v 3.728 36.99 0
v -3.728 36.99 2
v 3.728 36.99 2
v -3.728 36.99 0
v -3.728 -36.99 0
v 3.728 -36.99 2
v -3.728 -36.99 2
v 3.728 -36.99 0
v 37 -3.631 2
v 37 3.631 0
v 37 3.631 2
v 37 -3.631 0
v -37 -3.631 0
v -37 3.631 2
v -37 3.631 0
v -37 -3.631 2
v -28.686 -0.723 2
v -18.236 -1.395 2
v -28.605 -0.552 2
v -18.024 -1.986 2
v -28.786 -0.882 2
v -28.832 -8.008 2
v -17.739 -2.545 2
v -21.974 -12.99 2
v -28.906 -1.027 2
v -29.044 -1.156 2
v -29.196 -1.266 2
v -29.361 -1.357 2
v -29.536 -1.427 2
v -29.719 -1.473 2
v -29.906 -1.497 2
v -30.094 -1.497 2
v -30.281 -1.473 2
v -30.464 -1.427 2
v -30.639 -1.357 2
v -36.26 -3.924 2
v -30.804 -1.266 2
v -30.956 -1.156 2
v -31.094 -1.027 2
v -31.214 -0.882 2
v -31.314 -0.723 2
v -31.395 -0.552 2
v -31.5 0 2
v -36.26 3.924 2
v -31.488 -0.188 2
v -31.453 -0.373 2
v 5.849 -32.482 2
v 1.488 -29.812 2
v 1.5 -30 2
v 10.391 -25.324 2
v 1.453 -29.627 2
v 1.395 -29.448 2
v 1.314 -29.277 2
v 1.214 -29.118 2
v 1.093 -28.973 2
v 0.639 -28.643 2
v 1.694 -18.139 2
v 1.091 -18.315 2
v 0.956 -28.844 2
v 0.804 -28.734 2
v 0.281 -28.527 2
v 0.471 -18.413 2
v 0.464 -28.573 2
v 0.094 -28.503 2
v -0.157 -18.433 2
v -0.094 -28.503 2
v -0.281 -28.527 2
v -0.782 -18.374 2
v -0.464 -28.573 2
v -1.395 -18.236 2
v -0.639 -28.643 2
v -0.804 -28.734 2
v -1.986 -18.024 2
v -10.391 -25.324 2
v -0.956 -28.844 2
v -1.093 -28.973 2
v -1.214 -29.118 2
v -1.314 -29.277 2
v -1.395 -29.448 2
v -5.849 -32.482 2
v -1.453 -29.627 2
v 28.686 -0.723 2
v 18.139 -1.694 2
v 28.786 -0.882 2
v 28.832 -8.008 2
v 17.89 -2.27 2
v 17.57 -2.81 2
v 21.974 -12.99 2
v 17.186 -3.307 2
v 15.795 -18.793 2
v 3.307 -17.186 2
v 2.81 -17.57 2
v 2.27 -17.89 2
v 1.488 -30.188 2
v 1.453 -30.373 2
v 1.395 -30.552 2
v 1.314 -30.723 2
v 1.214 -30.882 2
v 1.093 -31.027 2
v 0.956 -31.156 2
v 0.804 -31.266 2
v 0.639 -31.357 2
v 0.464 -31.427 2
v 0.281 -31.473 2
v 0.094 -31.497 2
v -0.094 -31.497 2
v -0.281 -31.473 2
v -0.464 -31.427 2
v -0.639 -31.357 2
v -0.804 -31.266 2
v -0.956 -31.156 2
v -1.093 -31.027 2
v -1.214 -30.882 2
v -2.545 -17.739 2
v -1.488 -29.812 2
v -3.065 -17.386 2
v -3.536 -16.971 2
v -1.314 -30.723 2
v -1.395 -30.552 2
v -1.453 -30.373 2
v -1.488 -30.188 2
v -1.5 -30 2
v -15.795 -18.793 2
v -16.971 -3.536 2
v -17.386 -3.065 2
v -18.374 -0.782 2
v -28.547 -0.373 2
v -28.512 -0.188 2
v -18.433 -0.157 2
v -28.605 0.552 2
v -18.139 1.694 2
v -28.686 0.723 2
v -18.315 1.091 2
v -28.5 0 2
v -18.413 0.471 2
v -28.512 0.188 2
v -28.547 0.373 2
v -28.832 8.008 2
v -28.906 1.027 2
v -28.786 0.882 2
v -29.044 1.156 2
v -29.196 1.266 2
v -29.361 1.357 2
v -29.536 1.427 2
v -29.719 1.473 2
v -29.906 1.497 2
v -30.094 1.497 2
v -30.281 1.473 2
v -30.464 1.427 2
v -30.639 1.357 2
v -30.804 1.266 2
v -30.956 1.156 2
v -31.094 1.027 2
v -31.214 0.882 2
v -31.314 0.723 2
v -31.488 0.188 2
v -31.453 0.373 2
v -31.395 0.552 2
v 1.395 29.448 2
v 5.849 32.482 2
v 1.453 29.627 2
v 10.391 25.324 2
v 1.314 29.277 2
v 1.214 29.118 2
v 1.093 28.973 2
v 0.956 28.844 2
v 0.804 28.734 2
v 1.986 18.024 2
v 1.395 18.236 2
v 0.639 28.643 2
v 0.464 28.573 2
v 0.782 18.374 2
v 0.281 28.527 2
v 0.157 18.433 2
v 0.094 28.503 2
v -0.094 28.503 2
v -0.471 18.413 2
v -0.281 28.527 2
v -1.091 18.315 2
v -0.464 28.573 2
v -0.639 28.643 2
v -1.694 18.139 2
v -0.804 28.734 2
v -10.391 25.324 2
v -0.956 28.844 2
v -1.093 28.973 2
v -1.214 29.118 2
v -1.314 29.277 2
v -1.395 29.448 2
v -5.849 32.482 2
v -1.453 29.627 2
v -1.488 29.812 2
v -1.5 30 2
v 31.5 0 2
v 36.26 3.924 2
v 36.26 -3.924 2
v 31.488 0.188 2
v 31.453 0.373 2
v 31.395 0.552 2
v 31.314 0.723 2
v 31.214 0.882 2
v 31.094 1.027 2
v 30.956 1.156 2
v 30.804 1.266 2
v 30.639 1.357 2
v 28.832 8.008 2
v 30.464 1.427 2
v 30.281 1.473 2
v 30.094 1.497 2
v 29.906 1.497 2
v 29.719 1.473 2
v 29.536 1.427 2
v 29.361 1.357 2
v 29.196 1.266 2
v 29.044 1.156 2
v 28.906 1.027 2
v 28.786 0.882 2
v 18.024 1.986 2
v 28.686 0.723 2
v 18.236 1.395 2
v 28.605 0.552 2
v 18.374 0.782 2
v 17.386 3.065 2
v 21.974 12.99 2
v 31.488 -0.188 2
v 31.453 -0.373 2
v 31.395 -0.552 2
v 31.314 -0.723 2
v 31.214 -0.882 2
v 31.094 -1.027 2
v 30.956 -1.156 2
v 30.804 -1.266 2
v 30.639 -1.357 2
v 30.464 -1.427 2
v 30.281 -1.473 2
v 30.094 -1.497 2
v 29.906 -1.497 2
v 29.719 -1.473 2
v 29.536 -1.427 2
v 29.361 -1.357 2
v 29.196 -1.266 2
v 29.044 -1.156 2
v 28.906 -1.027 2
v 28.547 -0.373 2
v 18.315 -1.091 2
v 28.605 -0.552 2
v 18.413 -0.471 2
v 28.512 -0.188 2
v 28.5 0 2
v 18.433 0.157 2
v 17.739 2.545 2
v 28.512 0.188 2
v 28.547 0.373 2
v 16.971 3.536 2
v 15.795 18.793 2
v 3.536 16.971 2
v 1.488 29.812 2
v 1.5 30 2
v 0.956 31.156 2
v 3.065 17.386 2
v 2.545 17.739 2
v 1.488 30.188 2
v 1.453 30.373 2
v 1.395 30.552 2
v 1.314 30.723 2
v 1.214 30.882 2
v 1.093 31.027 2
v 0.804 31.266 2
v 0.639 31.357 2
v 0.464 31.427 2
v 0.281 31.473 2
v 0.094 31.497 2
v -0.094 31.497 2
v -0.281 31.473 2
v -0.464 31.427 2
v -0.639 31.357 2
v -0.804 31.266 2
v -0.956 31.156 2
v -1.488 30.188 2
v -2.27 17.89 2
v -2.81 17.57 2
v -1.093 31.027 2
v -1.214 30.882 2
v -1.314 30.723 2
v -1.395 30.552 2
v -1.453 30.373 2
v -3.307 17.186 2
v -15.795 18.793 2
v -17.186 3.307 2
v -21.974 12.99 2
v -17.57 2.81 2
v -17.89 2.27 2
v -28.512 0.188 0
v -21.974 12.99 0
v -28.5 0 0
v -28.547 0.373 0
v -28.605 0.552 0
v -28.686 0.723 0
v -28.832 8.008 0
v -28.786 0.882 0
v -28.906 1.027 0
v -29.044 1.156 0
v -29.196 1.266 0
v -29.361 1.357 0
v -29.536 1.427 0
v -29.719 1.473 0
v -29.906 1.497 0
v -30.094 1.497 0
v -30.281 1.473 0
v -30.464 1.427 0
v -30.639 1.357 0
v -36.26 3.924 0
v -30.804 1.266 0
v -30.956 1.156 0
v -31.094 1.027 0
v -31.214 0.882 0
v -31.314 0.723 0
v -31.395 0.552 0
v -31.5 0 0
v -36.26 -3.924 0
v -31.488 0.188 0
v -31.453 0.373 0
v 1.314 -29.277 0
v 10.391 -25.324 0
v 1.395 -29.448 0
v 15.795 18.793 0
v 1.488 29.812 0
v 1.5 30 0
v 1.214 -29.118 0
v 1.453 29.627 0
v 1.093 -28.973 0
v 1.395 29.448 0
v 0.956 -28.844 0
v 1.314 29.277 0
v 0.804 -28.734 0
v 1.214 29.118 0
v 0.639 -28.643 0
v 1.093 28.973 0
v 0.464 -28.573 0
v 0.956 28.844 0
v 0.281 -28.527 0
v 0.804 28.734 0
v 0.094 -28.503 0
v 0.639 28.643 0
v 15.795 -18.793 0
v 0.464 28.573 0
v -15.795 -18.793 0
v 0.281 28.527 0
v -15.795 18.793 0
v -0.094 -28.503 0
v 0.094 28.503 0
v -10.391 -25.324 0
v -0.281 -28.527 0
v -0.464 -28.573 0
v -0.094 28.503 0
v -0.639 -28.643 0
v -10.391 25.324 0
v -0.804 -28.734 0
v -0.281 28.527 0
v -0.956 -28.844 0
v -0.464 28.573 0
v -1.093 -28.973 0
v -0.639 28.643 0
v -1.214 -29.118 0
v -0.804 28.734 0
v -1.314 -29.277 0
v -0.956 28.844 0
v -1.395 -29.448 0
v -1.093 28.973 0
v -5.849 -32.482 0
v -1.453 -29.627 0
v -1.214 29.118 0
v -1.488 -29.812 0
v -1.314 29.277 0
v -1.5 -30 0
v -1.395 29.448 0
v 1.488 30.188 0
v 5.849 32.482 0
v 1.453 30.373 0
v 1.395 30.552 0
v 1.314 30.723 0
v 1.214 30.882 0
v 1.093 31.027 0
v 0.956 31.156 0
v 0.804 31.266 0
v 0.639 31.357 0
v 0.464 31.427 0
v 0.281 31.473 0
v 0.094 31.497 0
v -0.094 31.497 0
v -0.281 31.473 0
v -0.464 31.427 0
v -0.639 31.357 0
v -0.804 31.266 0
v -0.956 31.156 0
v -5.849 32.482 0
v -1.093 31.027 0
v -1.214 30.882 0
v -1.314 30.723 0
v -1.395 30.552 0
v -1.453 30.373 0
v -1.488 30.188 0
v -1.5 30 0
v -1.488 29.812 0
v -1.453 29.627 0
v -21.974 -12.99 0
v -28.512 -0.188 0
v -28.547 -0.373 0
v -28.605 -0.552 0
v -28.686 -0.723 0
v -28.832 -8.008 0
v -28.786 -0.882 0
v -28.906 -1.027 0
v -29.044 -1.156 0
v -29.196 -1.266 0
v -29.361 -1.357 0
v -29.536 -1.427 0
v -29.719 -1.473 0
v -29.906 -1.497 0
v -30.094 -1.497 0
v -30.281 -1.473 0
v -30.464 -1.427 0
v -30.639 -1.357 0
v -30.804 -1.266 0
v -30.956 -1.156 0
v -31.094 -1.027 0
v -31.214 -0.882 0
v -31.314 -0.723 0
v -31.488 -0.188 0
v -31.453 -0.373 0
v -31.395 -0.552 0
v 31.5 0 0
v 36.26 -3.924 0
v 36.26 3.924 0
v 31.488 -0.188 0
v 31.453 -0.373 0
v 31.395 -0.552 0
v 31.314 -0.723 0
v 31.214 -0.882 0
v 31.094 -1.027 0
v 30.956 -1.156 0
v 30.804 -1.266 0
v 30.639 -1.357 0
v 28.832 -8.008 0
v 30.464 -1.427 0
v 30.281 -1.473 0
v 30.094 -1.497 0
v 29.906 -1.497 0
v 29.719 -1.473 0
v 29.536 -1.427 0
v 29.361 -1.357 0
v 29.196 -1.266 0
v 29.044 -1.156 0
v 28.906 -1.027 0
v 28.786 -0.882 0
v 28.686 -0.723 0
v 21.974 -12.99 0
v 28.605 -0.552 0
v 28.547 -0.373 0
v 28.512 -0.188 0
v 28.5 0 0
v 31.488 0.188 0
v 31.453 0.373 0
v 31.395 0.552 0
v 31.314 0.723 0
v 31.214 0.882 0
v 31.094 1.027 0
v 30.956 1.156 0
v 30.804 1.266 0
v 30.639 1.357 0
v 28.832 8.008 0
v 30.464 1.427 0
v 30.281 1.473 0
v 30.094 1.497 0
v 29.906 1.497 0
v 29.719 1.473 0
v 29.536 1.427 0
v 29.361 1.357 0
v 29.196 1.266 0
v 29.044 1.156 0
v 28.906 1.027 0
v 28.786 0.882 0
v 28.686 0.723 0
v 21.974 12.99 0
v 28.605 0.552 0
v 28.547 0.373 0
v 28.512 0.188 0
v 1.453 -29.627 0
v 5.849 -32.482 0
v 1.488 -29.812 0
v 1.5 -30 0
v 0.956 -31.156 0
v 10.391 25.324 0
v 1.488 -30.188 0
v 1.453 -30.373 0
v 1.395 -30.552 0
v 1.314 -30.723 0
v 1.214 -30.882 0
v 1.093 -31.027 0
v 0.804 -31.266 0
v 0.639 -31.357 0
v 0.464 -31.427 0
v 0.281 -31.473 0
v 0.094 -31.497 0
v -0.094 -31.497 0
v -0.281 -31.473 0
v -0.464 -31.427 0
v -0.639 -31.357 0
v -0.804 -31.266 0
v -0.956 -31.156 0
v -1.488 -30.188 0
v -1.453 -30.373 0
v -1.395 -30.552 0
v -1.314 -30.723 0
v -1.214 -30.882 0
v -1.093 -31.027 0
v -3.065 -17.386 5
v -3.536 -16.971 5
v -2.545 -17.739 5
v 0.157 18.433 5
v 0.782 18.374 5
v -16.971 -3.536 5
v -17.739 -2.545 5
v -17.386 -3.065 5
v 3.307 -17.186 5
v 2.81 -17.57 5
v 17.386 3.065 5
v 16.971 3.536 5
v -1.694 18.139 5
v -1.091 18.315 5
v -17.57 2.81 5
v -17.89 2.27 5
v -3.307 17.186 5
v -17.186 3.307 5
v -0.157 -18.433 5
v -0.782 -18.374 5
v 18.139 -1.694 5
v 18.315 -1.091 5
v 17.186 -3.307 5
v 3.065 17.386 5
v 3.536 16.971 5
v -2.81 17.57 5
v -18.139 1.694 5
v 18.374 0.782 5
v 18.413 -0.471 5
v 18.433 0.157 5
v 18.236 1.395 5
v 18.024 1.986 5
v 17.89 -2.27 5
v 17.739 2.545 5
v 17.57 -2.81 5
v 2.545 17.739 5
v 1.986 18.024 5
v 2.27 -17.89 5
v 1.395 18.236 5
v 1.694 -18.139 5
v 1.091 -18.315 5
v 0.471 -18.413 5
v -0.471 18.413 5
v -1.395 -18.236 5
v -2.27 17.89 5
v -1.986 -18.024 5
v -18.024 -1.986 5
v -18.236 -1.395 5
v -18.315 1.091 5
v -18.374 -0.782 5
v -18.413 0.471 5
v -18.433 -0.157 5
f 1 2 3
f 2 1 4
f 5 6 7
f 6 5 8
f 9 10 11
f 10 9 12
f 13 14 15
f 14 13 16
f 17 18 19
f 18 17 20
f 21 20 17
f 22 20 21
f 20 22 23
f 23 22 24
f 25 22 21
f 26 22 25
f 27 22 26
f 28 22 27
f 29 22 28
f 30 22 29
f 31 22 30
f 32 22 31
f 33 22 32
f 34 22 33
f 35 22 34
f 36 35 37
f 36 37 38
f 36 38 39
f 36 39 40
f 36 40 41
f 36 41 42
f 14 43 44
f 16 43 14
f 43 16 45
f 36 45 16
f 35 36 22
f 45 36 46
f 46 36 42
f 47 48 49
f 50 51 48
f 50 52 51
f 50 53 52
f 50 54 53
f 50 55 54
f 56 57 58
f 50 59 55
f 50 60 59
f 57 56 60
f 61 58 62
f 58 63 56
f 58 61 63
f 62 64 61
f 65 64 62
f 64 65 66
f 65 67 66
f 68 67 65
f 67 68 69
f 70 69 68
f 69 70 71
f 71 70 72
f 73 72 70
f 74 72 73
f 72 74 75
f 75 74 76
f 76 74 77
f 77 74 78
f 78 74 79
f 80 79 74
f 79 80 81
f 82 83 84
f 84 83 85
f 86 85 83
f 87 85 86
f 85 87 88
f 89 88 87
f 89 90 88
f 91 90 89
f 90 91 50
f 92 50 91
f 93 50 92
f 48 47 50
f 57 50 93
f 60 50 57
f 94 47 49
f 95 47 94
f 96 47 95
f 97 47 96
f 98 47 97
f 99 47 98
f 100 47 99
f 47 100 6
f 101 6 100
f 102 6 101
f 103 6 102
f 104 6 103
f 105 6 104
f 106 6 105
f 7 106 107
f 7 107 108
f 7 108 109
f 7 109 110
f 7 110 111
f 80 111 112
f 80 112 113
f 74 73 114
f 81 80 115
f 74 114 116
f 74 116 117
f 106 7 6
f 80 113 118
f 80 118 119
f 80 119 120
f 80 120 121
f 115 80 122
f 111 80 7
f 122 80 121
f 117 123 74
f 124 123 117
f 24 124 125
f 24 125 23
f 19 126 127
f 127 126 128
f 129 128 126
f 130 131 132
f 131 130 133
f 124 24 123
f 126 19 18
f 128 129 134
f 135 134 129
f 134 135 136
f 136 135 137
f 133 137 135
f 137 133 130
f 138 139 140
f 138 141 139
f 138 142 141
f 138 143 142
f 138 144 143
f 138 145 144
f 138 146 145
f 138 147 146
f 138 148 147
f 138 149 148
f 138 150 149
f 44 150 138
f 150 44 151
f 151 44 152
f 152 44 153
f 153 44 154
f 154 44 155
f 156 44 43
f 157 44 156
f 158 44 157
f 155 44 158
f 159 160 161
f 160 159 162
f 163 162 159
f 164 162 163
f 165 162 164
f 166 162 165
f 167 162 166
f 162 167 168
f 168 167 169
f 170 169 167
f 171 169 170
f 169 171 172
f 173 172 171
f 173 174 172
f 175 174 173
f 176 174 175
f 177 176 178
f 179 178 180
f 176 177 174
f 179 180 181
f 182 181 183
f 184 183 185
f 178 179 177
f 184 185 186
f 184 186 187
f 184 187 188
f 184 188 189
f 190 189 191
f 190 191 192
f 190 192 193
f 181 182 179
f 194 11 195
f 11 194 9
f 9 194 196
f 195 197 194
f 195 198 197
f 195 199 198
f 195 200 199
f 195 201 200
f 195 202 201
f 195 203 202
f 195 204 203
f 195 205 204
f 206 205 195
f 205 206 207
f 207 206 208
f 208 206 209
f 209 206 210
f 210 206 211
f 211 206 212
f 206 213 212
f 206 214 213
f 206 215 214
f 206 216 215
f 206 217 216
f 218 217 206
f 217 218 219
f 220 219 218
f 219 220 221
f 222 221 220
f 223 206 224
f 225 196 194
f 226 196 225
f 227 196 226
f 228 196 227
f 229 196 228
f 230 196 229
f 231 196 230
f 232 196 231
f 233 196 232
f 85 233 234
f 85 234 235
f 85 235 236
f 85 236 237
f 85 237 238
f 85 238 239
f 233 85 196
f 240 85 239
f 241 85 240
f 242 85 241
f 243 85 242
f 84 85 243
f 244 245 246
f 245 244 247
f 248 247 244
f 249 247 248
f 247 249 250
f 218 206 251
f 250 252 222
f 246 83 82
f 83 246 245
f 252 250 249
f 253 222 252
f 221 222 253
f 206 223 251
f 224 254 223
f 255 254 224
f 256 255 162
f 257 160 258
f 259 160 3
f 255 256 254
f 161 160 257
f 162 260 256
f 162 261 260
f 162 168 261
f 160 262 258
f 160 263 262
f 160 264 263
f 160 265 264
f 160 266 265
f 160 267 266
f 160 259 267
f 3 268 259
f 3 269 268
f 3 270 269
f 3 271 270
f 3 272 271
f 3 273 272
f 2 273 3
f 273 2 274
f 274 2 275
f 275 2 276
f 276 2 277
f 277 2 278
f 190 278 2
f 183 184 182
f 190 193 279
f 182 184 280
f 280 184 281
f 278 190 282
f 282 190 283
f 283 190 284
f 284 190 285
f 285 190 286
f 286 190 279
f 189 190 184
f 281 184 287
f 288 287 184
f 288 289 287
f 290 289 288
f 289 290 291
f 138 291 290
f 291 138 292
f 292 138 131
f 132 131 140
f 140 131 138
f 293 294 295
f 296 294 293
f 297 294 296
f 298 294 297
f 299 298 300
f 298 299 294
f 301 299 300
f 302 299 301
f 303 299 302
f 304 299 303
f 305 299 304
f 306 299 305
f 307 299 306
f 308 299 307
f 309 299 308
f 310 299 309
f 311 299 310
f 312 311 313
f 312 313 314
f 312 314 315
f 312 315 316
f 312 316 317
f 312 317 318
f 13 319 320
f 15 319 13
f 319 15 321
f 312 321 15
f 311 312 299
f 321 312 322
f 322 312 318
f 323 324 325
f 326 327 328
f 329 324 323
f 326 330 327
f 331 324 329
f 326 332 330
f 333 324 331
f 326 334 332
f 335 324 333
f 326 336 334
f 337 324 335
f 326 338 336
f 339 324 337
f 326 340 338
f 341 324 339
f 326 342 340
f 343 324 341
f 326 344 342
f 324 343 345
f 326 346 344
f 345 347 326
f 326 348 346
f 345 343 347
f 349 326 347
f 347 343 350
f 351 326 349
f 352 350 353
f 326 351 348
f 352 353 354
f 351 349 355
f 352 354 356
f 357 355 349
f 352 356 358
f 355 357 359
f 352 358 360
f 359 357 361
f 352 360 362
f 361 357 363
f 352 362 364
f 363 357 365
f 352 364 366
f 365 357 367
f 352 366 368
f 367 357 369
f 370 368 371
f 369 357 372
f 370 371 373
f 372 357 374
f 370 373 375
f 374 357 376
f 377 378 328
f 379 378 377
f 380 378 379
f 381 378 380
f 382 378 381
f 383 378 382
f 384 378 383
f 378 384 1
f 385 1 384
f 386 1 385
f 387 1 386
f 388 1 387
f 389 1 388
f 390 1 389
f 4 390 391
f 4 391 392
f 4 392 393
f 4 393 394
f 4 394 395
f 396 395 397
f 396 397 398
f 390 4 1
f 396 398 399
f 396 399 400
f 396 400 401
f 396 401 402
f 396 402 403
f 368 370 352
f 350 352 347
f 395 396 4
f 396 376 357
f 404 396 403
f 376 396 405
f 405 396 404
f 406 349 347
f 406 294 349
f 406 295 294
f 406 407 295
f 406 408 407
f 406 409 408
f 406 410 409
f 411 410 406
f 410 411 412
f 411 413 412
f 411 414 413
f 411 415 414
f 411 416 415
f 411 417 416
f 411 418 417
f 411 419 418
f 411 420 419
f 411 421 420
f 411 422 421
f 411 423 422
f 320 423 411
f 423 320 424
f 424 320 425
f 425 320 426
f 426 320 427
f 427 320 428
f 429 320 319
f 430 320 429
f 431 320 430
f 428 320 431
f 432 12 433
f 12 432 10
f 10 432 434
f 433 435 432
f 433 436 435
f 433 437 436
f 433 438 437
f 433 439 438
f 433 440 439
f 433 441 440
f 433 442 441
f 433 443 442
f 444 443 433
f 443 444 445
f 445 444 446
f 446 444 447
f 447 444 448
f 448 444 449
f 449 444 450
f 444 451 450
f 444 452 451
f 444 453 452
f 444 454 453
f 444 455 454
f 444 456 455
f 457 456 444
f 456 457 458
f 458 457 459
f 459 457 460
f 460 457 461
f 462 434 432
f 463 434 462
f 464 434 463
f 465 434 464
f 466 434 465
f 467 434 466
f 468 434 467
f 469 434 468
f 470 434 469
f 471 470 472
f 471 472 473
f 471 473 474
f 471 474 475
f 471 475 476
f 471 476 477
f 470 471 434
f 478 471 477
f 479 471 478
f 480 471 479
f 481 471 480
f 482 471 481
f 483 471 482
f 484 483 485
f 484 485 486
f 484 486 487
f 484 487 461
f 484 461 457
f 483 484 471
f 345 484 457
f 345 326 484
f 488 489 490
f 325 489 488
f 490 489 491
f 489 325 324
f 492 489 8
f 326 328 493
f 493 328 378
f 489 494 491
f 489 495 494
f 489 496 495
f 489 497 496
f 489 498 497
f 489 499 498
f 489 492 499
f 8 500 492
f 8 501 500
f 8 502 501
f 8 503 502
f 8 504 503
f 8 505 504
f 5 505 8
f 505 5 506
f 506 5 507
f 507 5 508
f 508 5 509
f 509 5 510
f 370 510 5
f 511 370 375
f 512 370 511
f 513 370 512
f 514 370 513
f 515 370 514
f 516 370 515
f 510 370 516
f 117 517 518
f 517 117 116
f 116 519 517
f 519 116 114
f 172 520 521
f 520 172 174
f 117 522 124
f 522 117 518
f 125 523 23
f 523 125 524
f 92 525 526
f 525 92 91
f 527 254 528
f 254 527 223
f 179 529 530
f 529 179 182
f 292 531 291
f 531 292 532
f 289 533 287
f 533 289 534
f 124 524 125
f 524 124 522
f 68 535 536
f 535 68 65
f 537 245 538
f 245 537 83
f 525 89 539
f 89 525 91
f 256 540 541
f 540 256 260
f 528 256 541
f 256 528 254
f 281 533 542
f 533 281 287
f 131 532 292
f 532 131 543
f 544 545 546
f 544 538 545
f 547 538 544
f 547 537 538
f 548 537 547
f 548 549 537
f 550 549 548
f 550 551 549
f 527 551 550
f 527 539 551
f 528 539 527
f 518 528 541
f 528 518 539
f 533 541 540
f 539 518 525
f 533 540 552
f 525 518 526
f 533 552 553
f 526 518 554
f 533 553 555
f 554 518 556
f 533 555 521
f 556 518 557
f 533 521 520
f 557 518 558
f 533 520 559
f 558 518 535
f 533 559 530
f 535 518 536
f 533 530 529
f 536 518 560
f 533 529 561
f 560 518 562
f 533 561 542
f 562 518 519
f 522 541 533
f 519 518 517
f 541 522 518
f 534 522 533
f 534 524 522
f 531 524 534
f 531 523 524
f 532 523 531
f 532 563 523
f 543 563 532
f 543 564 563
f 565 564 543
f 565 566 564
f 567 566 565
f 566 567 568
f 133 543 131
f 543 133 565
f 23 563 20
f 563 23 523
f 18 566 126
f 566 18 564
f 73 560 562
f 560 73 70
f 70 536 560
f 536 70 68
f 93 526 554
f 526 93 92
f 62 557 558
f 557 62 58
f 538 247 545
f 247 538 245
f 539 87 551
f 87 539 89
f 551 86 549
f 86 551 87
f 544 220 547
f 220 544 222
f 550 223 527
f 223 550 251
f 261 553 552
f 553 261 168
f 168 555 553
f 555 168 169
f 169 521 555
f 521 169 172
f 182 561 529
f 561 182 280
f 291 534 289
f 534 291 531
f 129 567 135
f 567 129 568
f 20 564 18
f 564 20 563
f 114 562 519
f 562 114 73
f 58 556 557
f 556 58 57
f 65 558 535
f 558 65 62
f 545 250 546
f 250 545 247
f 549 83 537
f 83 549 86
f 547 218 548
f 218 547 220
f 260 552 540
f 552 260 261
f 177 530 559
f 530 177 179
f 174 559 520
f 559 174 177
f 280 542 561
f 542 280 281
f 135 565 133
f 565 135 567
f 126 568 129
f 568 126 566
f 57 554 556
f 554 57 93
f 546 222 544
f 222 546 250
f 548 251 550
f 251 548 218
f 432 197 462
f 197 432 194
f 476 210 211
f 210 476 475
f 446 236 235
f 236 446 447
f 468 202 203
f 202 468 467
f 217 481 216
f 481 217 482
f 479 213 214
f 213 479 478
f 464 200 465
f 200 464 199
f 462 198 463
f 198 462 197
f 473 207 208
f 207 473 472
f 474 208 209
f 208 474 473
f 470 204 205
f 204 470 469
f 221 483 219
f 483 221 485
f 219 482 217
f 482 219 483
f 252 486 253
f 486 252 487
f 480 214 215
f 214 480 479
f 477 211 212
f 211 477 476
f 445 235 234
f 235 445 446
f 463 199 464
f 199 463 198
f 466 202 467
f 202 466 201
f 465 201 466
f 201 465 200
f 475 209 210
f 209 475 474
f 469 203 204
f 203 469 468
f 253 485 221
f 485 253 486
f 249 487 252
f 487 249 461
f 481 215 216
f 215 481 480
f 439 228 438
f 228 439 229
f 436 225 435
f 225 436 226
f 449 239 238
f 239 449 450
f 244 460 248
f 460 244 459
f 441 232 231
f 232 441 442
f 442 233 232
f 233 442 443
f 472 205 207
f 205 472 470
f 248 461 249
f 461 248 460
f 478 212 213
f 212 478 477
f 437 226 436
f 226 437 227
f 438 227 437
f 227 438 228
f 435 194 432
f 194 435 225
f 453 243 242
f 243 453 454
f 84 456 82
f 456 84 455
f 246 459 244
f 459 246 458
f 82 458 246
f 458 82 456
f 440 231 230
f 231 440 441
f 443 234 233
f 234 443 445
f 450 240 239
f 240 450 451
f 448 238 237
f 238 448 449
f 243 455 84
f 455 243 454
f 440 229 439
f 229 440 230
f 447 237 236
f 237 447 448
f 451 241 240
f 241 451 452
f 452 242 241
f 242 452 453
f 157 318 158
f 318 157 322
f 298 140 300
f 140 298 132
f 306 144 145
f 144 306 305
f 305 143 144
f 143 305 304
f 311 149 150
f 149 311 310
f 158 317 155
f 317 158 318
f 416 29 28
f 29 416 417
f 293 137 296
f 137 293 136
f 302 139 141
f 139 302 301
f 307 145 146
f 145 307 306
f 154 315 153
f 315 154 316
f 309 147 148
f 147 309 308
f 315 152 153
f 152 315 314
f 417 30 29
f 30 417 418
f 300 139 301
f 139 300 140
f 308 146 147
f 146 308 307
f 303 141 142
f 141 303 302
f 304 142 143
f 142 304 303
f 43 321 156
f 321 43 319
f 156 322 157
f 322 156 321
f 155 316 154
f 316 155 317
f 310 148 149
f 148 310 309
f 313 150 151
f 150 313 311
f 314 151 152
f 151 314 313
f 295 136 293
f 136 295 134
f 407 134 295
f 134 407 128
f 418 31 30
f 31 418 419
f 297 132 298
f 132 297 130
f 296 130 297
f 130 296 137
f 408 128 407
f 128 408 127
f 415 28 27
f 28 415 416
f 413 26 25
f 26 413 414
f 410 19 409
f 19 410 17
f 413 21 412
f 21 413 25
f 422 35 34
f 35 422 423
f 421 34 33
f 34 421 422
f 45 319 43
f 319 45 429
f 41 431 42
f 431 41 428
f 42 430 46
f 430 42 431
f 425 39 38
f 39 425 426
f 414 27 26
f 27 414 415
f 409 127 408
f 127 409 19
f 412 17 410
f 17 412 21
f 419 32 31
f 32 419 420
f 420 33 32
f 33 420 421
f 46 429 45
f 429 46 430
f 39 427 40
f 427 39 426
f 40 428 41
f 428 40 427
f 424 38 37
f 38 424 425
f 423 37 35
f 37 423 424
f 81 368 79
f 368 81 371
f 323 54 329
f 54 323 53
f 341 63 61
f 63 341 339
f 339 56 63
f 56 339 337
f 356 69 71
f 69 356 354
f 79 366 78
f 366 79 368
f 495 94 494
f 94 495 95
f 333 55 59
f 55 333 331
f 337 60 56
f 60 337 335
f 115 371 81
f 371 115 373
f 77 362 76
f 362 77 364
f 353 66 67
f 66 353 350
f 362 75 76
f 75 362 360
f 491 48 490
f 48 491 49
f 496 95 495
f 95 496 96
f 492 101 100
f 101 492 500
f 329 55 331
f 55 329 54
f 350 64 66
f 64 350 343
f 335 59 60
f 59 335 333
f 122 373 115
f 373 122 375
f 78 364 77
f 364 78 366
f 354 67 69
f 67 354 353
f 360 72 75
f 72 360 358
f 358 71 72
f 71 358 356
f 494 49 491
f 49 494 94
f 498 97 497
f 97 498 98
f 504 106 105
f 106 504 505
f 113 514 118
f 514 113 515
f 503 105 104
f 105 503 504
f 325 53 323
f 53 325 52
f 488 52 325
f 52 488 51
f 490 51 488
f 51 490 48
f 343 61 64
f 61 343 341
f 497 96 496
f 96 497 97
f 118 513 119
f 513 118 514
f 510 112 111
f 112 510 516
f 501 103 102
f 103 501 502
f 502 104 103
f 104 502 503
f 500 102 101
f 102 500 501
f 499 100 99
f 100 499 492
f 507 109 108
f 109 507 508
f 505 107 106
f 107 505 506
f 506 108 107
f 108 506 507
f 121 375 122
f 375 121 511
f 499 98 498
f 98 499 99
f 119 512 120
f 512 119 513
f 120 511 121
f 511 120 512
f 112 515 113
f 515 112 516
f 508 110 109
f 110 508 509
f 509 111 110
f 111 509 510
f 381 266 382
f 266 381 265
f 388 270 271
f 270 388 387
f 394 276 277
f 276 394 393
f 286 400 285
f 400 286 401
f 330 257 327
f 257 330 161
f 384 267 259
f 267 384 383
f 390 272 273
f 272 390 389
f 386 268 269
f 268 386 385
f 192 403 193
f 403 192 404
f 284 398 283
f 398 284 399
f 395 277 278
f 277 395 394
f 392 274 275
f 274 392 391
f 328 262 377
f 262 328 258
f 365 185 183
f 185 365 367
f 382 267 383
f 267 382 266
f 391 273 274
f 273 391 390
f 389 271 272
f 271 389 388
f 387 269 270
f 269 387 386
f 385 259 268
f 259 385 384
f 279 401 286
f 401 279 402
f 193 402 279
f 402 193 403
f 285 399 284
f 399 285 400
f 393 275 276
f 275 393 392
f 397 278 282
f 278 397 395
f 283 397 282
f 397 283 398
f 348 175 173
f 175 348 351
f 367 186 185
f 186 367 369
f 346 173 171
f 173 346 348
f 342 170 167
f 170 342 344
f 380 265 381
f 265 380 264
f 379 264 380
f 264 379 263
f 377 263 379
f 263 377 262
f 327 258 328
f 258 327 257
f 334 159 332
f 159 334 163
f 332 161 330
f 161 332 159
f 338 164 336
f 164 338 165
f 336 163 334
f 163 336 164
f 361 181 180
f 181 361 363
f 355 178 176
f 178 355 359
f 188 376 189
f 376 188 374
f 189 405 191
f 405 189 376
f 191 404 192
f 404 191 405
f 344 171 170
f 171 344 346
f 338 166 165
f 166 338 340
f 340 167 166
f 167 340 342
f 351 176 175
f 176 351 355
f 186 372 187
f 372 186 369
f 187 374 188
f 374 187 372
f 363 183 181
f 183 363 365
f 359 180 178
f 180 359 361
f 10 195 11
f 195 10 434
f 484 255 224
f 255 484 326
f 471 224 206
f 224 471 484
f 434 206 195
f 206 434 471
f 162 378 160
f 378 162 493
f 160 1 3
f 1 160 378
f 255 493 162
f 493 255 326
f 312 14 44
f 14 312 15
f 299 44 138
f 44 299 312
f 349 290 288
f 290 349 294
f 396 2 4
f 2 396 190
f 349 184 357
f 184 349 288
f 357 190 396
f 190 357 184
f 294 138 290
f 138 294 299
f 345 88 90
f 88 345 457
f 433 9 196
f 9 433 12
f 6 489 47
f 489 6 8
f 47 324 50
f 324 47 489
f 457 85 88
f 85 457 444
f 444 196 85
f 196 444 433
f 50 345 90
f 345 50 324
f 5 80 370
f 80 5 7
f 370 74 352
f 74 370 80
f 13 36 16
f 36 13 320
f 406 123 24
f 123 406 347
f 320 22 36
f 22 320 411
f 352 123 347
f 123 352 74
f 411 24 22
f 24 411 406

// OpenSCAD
$fn = 50;


difference() {
	union() {
		hull() {
			translate(v = [-32.0000000000, 32.0000000000, 0]) {
				cylinder(h = 2, r = 5);
			}
			translate(v = [32.0000000000, 32.0000000000, 0]) {
				cylinder(h = 2, r = 5);
			}
			translate(v = [-32.0000000000, -32.0000000000, 0]) {
				cylinder(h = 2, r = 5);
			}
			translate(v = [32.0000000000, -32.0000000000, 0]) {
				cylinder(h = 2, r = 5);
			}
		}
		rotate(a = [0, 0, 45]) {
			hull() {
				translate(v = [-9.5000000000, 9.5000000000, 0]) {
					cylinder(h = 5, r = 5);
				}
				translate(v = [9.5000000000, 9.5000000000, 0]) {
					cylinder(h = 5, r = 5);
				}
				translate(v = [-9.5000000000, -9.5000000000, 0]) {
					cylinder(h = 5, r = 5);
				}
				translate(v = [9.5000000000, -9.5000000000, 0]) {
					cylinder(h = 5, r = 5);
				}
			}
		}
	}
	union() {
		translate(v = [30, 0, -100.0000000000]) {
			cylinder(h = 200, r = 1.5000000000);
		}
		translate(v = [-30, 0, -100.0000000000]) {
			cylinder(h = 200, r = 1.5000000000);
		}
		translate(v = [0, -30, -100.0000000000]) {
			cylinder(h = 200, r = 1.5000000000);
		}
		translate(v = [0, 30, -100.0000000000]) {
			cylinder(h = 200, r = 1.5000000000);
		}
		translate(v = [65, 65, 0.0000000000]) {
			cylinder(h = 2, r = 67.5000000000);
		}
		translate(v = [-65, 65, 0.0000000000]) {
			cylinder(h = 2, r = 67.5000000000);
		}
		translate(v = [65, -65, 0.0000000000]) {
			cylinder(h = 2, r = 67.5000000000);
		}
		translate(v = [-65, -65, 0.0000000000]) {
			cylinder(h = 2, r = 67.5000000000);
		}
		translate(v = [65, 65, 0.0000000000]) {
			cylinder(h = 2, r = 67.5000000000);
		}
		translate(v = [-65, 65, 0.0000000000]) {
			cylinder(h = 2, r = 67.5000000000);
		}
		translate(v = [65, -65, 0.0000000000]) {
			cylinder(h = 2, r = 67.5000000000);
		}
		translate(v = [-65, -65, 0.0000000000]) {
			cylinder(h = 2, r = 67.5000000000);
		}
	}
}
